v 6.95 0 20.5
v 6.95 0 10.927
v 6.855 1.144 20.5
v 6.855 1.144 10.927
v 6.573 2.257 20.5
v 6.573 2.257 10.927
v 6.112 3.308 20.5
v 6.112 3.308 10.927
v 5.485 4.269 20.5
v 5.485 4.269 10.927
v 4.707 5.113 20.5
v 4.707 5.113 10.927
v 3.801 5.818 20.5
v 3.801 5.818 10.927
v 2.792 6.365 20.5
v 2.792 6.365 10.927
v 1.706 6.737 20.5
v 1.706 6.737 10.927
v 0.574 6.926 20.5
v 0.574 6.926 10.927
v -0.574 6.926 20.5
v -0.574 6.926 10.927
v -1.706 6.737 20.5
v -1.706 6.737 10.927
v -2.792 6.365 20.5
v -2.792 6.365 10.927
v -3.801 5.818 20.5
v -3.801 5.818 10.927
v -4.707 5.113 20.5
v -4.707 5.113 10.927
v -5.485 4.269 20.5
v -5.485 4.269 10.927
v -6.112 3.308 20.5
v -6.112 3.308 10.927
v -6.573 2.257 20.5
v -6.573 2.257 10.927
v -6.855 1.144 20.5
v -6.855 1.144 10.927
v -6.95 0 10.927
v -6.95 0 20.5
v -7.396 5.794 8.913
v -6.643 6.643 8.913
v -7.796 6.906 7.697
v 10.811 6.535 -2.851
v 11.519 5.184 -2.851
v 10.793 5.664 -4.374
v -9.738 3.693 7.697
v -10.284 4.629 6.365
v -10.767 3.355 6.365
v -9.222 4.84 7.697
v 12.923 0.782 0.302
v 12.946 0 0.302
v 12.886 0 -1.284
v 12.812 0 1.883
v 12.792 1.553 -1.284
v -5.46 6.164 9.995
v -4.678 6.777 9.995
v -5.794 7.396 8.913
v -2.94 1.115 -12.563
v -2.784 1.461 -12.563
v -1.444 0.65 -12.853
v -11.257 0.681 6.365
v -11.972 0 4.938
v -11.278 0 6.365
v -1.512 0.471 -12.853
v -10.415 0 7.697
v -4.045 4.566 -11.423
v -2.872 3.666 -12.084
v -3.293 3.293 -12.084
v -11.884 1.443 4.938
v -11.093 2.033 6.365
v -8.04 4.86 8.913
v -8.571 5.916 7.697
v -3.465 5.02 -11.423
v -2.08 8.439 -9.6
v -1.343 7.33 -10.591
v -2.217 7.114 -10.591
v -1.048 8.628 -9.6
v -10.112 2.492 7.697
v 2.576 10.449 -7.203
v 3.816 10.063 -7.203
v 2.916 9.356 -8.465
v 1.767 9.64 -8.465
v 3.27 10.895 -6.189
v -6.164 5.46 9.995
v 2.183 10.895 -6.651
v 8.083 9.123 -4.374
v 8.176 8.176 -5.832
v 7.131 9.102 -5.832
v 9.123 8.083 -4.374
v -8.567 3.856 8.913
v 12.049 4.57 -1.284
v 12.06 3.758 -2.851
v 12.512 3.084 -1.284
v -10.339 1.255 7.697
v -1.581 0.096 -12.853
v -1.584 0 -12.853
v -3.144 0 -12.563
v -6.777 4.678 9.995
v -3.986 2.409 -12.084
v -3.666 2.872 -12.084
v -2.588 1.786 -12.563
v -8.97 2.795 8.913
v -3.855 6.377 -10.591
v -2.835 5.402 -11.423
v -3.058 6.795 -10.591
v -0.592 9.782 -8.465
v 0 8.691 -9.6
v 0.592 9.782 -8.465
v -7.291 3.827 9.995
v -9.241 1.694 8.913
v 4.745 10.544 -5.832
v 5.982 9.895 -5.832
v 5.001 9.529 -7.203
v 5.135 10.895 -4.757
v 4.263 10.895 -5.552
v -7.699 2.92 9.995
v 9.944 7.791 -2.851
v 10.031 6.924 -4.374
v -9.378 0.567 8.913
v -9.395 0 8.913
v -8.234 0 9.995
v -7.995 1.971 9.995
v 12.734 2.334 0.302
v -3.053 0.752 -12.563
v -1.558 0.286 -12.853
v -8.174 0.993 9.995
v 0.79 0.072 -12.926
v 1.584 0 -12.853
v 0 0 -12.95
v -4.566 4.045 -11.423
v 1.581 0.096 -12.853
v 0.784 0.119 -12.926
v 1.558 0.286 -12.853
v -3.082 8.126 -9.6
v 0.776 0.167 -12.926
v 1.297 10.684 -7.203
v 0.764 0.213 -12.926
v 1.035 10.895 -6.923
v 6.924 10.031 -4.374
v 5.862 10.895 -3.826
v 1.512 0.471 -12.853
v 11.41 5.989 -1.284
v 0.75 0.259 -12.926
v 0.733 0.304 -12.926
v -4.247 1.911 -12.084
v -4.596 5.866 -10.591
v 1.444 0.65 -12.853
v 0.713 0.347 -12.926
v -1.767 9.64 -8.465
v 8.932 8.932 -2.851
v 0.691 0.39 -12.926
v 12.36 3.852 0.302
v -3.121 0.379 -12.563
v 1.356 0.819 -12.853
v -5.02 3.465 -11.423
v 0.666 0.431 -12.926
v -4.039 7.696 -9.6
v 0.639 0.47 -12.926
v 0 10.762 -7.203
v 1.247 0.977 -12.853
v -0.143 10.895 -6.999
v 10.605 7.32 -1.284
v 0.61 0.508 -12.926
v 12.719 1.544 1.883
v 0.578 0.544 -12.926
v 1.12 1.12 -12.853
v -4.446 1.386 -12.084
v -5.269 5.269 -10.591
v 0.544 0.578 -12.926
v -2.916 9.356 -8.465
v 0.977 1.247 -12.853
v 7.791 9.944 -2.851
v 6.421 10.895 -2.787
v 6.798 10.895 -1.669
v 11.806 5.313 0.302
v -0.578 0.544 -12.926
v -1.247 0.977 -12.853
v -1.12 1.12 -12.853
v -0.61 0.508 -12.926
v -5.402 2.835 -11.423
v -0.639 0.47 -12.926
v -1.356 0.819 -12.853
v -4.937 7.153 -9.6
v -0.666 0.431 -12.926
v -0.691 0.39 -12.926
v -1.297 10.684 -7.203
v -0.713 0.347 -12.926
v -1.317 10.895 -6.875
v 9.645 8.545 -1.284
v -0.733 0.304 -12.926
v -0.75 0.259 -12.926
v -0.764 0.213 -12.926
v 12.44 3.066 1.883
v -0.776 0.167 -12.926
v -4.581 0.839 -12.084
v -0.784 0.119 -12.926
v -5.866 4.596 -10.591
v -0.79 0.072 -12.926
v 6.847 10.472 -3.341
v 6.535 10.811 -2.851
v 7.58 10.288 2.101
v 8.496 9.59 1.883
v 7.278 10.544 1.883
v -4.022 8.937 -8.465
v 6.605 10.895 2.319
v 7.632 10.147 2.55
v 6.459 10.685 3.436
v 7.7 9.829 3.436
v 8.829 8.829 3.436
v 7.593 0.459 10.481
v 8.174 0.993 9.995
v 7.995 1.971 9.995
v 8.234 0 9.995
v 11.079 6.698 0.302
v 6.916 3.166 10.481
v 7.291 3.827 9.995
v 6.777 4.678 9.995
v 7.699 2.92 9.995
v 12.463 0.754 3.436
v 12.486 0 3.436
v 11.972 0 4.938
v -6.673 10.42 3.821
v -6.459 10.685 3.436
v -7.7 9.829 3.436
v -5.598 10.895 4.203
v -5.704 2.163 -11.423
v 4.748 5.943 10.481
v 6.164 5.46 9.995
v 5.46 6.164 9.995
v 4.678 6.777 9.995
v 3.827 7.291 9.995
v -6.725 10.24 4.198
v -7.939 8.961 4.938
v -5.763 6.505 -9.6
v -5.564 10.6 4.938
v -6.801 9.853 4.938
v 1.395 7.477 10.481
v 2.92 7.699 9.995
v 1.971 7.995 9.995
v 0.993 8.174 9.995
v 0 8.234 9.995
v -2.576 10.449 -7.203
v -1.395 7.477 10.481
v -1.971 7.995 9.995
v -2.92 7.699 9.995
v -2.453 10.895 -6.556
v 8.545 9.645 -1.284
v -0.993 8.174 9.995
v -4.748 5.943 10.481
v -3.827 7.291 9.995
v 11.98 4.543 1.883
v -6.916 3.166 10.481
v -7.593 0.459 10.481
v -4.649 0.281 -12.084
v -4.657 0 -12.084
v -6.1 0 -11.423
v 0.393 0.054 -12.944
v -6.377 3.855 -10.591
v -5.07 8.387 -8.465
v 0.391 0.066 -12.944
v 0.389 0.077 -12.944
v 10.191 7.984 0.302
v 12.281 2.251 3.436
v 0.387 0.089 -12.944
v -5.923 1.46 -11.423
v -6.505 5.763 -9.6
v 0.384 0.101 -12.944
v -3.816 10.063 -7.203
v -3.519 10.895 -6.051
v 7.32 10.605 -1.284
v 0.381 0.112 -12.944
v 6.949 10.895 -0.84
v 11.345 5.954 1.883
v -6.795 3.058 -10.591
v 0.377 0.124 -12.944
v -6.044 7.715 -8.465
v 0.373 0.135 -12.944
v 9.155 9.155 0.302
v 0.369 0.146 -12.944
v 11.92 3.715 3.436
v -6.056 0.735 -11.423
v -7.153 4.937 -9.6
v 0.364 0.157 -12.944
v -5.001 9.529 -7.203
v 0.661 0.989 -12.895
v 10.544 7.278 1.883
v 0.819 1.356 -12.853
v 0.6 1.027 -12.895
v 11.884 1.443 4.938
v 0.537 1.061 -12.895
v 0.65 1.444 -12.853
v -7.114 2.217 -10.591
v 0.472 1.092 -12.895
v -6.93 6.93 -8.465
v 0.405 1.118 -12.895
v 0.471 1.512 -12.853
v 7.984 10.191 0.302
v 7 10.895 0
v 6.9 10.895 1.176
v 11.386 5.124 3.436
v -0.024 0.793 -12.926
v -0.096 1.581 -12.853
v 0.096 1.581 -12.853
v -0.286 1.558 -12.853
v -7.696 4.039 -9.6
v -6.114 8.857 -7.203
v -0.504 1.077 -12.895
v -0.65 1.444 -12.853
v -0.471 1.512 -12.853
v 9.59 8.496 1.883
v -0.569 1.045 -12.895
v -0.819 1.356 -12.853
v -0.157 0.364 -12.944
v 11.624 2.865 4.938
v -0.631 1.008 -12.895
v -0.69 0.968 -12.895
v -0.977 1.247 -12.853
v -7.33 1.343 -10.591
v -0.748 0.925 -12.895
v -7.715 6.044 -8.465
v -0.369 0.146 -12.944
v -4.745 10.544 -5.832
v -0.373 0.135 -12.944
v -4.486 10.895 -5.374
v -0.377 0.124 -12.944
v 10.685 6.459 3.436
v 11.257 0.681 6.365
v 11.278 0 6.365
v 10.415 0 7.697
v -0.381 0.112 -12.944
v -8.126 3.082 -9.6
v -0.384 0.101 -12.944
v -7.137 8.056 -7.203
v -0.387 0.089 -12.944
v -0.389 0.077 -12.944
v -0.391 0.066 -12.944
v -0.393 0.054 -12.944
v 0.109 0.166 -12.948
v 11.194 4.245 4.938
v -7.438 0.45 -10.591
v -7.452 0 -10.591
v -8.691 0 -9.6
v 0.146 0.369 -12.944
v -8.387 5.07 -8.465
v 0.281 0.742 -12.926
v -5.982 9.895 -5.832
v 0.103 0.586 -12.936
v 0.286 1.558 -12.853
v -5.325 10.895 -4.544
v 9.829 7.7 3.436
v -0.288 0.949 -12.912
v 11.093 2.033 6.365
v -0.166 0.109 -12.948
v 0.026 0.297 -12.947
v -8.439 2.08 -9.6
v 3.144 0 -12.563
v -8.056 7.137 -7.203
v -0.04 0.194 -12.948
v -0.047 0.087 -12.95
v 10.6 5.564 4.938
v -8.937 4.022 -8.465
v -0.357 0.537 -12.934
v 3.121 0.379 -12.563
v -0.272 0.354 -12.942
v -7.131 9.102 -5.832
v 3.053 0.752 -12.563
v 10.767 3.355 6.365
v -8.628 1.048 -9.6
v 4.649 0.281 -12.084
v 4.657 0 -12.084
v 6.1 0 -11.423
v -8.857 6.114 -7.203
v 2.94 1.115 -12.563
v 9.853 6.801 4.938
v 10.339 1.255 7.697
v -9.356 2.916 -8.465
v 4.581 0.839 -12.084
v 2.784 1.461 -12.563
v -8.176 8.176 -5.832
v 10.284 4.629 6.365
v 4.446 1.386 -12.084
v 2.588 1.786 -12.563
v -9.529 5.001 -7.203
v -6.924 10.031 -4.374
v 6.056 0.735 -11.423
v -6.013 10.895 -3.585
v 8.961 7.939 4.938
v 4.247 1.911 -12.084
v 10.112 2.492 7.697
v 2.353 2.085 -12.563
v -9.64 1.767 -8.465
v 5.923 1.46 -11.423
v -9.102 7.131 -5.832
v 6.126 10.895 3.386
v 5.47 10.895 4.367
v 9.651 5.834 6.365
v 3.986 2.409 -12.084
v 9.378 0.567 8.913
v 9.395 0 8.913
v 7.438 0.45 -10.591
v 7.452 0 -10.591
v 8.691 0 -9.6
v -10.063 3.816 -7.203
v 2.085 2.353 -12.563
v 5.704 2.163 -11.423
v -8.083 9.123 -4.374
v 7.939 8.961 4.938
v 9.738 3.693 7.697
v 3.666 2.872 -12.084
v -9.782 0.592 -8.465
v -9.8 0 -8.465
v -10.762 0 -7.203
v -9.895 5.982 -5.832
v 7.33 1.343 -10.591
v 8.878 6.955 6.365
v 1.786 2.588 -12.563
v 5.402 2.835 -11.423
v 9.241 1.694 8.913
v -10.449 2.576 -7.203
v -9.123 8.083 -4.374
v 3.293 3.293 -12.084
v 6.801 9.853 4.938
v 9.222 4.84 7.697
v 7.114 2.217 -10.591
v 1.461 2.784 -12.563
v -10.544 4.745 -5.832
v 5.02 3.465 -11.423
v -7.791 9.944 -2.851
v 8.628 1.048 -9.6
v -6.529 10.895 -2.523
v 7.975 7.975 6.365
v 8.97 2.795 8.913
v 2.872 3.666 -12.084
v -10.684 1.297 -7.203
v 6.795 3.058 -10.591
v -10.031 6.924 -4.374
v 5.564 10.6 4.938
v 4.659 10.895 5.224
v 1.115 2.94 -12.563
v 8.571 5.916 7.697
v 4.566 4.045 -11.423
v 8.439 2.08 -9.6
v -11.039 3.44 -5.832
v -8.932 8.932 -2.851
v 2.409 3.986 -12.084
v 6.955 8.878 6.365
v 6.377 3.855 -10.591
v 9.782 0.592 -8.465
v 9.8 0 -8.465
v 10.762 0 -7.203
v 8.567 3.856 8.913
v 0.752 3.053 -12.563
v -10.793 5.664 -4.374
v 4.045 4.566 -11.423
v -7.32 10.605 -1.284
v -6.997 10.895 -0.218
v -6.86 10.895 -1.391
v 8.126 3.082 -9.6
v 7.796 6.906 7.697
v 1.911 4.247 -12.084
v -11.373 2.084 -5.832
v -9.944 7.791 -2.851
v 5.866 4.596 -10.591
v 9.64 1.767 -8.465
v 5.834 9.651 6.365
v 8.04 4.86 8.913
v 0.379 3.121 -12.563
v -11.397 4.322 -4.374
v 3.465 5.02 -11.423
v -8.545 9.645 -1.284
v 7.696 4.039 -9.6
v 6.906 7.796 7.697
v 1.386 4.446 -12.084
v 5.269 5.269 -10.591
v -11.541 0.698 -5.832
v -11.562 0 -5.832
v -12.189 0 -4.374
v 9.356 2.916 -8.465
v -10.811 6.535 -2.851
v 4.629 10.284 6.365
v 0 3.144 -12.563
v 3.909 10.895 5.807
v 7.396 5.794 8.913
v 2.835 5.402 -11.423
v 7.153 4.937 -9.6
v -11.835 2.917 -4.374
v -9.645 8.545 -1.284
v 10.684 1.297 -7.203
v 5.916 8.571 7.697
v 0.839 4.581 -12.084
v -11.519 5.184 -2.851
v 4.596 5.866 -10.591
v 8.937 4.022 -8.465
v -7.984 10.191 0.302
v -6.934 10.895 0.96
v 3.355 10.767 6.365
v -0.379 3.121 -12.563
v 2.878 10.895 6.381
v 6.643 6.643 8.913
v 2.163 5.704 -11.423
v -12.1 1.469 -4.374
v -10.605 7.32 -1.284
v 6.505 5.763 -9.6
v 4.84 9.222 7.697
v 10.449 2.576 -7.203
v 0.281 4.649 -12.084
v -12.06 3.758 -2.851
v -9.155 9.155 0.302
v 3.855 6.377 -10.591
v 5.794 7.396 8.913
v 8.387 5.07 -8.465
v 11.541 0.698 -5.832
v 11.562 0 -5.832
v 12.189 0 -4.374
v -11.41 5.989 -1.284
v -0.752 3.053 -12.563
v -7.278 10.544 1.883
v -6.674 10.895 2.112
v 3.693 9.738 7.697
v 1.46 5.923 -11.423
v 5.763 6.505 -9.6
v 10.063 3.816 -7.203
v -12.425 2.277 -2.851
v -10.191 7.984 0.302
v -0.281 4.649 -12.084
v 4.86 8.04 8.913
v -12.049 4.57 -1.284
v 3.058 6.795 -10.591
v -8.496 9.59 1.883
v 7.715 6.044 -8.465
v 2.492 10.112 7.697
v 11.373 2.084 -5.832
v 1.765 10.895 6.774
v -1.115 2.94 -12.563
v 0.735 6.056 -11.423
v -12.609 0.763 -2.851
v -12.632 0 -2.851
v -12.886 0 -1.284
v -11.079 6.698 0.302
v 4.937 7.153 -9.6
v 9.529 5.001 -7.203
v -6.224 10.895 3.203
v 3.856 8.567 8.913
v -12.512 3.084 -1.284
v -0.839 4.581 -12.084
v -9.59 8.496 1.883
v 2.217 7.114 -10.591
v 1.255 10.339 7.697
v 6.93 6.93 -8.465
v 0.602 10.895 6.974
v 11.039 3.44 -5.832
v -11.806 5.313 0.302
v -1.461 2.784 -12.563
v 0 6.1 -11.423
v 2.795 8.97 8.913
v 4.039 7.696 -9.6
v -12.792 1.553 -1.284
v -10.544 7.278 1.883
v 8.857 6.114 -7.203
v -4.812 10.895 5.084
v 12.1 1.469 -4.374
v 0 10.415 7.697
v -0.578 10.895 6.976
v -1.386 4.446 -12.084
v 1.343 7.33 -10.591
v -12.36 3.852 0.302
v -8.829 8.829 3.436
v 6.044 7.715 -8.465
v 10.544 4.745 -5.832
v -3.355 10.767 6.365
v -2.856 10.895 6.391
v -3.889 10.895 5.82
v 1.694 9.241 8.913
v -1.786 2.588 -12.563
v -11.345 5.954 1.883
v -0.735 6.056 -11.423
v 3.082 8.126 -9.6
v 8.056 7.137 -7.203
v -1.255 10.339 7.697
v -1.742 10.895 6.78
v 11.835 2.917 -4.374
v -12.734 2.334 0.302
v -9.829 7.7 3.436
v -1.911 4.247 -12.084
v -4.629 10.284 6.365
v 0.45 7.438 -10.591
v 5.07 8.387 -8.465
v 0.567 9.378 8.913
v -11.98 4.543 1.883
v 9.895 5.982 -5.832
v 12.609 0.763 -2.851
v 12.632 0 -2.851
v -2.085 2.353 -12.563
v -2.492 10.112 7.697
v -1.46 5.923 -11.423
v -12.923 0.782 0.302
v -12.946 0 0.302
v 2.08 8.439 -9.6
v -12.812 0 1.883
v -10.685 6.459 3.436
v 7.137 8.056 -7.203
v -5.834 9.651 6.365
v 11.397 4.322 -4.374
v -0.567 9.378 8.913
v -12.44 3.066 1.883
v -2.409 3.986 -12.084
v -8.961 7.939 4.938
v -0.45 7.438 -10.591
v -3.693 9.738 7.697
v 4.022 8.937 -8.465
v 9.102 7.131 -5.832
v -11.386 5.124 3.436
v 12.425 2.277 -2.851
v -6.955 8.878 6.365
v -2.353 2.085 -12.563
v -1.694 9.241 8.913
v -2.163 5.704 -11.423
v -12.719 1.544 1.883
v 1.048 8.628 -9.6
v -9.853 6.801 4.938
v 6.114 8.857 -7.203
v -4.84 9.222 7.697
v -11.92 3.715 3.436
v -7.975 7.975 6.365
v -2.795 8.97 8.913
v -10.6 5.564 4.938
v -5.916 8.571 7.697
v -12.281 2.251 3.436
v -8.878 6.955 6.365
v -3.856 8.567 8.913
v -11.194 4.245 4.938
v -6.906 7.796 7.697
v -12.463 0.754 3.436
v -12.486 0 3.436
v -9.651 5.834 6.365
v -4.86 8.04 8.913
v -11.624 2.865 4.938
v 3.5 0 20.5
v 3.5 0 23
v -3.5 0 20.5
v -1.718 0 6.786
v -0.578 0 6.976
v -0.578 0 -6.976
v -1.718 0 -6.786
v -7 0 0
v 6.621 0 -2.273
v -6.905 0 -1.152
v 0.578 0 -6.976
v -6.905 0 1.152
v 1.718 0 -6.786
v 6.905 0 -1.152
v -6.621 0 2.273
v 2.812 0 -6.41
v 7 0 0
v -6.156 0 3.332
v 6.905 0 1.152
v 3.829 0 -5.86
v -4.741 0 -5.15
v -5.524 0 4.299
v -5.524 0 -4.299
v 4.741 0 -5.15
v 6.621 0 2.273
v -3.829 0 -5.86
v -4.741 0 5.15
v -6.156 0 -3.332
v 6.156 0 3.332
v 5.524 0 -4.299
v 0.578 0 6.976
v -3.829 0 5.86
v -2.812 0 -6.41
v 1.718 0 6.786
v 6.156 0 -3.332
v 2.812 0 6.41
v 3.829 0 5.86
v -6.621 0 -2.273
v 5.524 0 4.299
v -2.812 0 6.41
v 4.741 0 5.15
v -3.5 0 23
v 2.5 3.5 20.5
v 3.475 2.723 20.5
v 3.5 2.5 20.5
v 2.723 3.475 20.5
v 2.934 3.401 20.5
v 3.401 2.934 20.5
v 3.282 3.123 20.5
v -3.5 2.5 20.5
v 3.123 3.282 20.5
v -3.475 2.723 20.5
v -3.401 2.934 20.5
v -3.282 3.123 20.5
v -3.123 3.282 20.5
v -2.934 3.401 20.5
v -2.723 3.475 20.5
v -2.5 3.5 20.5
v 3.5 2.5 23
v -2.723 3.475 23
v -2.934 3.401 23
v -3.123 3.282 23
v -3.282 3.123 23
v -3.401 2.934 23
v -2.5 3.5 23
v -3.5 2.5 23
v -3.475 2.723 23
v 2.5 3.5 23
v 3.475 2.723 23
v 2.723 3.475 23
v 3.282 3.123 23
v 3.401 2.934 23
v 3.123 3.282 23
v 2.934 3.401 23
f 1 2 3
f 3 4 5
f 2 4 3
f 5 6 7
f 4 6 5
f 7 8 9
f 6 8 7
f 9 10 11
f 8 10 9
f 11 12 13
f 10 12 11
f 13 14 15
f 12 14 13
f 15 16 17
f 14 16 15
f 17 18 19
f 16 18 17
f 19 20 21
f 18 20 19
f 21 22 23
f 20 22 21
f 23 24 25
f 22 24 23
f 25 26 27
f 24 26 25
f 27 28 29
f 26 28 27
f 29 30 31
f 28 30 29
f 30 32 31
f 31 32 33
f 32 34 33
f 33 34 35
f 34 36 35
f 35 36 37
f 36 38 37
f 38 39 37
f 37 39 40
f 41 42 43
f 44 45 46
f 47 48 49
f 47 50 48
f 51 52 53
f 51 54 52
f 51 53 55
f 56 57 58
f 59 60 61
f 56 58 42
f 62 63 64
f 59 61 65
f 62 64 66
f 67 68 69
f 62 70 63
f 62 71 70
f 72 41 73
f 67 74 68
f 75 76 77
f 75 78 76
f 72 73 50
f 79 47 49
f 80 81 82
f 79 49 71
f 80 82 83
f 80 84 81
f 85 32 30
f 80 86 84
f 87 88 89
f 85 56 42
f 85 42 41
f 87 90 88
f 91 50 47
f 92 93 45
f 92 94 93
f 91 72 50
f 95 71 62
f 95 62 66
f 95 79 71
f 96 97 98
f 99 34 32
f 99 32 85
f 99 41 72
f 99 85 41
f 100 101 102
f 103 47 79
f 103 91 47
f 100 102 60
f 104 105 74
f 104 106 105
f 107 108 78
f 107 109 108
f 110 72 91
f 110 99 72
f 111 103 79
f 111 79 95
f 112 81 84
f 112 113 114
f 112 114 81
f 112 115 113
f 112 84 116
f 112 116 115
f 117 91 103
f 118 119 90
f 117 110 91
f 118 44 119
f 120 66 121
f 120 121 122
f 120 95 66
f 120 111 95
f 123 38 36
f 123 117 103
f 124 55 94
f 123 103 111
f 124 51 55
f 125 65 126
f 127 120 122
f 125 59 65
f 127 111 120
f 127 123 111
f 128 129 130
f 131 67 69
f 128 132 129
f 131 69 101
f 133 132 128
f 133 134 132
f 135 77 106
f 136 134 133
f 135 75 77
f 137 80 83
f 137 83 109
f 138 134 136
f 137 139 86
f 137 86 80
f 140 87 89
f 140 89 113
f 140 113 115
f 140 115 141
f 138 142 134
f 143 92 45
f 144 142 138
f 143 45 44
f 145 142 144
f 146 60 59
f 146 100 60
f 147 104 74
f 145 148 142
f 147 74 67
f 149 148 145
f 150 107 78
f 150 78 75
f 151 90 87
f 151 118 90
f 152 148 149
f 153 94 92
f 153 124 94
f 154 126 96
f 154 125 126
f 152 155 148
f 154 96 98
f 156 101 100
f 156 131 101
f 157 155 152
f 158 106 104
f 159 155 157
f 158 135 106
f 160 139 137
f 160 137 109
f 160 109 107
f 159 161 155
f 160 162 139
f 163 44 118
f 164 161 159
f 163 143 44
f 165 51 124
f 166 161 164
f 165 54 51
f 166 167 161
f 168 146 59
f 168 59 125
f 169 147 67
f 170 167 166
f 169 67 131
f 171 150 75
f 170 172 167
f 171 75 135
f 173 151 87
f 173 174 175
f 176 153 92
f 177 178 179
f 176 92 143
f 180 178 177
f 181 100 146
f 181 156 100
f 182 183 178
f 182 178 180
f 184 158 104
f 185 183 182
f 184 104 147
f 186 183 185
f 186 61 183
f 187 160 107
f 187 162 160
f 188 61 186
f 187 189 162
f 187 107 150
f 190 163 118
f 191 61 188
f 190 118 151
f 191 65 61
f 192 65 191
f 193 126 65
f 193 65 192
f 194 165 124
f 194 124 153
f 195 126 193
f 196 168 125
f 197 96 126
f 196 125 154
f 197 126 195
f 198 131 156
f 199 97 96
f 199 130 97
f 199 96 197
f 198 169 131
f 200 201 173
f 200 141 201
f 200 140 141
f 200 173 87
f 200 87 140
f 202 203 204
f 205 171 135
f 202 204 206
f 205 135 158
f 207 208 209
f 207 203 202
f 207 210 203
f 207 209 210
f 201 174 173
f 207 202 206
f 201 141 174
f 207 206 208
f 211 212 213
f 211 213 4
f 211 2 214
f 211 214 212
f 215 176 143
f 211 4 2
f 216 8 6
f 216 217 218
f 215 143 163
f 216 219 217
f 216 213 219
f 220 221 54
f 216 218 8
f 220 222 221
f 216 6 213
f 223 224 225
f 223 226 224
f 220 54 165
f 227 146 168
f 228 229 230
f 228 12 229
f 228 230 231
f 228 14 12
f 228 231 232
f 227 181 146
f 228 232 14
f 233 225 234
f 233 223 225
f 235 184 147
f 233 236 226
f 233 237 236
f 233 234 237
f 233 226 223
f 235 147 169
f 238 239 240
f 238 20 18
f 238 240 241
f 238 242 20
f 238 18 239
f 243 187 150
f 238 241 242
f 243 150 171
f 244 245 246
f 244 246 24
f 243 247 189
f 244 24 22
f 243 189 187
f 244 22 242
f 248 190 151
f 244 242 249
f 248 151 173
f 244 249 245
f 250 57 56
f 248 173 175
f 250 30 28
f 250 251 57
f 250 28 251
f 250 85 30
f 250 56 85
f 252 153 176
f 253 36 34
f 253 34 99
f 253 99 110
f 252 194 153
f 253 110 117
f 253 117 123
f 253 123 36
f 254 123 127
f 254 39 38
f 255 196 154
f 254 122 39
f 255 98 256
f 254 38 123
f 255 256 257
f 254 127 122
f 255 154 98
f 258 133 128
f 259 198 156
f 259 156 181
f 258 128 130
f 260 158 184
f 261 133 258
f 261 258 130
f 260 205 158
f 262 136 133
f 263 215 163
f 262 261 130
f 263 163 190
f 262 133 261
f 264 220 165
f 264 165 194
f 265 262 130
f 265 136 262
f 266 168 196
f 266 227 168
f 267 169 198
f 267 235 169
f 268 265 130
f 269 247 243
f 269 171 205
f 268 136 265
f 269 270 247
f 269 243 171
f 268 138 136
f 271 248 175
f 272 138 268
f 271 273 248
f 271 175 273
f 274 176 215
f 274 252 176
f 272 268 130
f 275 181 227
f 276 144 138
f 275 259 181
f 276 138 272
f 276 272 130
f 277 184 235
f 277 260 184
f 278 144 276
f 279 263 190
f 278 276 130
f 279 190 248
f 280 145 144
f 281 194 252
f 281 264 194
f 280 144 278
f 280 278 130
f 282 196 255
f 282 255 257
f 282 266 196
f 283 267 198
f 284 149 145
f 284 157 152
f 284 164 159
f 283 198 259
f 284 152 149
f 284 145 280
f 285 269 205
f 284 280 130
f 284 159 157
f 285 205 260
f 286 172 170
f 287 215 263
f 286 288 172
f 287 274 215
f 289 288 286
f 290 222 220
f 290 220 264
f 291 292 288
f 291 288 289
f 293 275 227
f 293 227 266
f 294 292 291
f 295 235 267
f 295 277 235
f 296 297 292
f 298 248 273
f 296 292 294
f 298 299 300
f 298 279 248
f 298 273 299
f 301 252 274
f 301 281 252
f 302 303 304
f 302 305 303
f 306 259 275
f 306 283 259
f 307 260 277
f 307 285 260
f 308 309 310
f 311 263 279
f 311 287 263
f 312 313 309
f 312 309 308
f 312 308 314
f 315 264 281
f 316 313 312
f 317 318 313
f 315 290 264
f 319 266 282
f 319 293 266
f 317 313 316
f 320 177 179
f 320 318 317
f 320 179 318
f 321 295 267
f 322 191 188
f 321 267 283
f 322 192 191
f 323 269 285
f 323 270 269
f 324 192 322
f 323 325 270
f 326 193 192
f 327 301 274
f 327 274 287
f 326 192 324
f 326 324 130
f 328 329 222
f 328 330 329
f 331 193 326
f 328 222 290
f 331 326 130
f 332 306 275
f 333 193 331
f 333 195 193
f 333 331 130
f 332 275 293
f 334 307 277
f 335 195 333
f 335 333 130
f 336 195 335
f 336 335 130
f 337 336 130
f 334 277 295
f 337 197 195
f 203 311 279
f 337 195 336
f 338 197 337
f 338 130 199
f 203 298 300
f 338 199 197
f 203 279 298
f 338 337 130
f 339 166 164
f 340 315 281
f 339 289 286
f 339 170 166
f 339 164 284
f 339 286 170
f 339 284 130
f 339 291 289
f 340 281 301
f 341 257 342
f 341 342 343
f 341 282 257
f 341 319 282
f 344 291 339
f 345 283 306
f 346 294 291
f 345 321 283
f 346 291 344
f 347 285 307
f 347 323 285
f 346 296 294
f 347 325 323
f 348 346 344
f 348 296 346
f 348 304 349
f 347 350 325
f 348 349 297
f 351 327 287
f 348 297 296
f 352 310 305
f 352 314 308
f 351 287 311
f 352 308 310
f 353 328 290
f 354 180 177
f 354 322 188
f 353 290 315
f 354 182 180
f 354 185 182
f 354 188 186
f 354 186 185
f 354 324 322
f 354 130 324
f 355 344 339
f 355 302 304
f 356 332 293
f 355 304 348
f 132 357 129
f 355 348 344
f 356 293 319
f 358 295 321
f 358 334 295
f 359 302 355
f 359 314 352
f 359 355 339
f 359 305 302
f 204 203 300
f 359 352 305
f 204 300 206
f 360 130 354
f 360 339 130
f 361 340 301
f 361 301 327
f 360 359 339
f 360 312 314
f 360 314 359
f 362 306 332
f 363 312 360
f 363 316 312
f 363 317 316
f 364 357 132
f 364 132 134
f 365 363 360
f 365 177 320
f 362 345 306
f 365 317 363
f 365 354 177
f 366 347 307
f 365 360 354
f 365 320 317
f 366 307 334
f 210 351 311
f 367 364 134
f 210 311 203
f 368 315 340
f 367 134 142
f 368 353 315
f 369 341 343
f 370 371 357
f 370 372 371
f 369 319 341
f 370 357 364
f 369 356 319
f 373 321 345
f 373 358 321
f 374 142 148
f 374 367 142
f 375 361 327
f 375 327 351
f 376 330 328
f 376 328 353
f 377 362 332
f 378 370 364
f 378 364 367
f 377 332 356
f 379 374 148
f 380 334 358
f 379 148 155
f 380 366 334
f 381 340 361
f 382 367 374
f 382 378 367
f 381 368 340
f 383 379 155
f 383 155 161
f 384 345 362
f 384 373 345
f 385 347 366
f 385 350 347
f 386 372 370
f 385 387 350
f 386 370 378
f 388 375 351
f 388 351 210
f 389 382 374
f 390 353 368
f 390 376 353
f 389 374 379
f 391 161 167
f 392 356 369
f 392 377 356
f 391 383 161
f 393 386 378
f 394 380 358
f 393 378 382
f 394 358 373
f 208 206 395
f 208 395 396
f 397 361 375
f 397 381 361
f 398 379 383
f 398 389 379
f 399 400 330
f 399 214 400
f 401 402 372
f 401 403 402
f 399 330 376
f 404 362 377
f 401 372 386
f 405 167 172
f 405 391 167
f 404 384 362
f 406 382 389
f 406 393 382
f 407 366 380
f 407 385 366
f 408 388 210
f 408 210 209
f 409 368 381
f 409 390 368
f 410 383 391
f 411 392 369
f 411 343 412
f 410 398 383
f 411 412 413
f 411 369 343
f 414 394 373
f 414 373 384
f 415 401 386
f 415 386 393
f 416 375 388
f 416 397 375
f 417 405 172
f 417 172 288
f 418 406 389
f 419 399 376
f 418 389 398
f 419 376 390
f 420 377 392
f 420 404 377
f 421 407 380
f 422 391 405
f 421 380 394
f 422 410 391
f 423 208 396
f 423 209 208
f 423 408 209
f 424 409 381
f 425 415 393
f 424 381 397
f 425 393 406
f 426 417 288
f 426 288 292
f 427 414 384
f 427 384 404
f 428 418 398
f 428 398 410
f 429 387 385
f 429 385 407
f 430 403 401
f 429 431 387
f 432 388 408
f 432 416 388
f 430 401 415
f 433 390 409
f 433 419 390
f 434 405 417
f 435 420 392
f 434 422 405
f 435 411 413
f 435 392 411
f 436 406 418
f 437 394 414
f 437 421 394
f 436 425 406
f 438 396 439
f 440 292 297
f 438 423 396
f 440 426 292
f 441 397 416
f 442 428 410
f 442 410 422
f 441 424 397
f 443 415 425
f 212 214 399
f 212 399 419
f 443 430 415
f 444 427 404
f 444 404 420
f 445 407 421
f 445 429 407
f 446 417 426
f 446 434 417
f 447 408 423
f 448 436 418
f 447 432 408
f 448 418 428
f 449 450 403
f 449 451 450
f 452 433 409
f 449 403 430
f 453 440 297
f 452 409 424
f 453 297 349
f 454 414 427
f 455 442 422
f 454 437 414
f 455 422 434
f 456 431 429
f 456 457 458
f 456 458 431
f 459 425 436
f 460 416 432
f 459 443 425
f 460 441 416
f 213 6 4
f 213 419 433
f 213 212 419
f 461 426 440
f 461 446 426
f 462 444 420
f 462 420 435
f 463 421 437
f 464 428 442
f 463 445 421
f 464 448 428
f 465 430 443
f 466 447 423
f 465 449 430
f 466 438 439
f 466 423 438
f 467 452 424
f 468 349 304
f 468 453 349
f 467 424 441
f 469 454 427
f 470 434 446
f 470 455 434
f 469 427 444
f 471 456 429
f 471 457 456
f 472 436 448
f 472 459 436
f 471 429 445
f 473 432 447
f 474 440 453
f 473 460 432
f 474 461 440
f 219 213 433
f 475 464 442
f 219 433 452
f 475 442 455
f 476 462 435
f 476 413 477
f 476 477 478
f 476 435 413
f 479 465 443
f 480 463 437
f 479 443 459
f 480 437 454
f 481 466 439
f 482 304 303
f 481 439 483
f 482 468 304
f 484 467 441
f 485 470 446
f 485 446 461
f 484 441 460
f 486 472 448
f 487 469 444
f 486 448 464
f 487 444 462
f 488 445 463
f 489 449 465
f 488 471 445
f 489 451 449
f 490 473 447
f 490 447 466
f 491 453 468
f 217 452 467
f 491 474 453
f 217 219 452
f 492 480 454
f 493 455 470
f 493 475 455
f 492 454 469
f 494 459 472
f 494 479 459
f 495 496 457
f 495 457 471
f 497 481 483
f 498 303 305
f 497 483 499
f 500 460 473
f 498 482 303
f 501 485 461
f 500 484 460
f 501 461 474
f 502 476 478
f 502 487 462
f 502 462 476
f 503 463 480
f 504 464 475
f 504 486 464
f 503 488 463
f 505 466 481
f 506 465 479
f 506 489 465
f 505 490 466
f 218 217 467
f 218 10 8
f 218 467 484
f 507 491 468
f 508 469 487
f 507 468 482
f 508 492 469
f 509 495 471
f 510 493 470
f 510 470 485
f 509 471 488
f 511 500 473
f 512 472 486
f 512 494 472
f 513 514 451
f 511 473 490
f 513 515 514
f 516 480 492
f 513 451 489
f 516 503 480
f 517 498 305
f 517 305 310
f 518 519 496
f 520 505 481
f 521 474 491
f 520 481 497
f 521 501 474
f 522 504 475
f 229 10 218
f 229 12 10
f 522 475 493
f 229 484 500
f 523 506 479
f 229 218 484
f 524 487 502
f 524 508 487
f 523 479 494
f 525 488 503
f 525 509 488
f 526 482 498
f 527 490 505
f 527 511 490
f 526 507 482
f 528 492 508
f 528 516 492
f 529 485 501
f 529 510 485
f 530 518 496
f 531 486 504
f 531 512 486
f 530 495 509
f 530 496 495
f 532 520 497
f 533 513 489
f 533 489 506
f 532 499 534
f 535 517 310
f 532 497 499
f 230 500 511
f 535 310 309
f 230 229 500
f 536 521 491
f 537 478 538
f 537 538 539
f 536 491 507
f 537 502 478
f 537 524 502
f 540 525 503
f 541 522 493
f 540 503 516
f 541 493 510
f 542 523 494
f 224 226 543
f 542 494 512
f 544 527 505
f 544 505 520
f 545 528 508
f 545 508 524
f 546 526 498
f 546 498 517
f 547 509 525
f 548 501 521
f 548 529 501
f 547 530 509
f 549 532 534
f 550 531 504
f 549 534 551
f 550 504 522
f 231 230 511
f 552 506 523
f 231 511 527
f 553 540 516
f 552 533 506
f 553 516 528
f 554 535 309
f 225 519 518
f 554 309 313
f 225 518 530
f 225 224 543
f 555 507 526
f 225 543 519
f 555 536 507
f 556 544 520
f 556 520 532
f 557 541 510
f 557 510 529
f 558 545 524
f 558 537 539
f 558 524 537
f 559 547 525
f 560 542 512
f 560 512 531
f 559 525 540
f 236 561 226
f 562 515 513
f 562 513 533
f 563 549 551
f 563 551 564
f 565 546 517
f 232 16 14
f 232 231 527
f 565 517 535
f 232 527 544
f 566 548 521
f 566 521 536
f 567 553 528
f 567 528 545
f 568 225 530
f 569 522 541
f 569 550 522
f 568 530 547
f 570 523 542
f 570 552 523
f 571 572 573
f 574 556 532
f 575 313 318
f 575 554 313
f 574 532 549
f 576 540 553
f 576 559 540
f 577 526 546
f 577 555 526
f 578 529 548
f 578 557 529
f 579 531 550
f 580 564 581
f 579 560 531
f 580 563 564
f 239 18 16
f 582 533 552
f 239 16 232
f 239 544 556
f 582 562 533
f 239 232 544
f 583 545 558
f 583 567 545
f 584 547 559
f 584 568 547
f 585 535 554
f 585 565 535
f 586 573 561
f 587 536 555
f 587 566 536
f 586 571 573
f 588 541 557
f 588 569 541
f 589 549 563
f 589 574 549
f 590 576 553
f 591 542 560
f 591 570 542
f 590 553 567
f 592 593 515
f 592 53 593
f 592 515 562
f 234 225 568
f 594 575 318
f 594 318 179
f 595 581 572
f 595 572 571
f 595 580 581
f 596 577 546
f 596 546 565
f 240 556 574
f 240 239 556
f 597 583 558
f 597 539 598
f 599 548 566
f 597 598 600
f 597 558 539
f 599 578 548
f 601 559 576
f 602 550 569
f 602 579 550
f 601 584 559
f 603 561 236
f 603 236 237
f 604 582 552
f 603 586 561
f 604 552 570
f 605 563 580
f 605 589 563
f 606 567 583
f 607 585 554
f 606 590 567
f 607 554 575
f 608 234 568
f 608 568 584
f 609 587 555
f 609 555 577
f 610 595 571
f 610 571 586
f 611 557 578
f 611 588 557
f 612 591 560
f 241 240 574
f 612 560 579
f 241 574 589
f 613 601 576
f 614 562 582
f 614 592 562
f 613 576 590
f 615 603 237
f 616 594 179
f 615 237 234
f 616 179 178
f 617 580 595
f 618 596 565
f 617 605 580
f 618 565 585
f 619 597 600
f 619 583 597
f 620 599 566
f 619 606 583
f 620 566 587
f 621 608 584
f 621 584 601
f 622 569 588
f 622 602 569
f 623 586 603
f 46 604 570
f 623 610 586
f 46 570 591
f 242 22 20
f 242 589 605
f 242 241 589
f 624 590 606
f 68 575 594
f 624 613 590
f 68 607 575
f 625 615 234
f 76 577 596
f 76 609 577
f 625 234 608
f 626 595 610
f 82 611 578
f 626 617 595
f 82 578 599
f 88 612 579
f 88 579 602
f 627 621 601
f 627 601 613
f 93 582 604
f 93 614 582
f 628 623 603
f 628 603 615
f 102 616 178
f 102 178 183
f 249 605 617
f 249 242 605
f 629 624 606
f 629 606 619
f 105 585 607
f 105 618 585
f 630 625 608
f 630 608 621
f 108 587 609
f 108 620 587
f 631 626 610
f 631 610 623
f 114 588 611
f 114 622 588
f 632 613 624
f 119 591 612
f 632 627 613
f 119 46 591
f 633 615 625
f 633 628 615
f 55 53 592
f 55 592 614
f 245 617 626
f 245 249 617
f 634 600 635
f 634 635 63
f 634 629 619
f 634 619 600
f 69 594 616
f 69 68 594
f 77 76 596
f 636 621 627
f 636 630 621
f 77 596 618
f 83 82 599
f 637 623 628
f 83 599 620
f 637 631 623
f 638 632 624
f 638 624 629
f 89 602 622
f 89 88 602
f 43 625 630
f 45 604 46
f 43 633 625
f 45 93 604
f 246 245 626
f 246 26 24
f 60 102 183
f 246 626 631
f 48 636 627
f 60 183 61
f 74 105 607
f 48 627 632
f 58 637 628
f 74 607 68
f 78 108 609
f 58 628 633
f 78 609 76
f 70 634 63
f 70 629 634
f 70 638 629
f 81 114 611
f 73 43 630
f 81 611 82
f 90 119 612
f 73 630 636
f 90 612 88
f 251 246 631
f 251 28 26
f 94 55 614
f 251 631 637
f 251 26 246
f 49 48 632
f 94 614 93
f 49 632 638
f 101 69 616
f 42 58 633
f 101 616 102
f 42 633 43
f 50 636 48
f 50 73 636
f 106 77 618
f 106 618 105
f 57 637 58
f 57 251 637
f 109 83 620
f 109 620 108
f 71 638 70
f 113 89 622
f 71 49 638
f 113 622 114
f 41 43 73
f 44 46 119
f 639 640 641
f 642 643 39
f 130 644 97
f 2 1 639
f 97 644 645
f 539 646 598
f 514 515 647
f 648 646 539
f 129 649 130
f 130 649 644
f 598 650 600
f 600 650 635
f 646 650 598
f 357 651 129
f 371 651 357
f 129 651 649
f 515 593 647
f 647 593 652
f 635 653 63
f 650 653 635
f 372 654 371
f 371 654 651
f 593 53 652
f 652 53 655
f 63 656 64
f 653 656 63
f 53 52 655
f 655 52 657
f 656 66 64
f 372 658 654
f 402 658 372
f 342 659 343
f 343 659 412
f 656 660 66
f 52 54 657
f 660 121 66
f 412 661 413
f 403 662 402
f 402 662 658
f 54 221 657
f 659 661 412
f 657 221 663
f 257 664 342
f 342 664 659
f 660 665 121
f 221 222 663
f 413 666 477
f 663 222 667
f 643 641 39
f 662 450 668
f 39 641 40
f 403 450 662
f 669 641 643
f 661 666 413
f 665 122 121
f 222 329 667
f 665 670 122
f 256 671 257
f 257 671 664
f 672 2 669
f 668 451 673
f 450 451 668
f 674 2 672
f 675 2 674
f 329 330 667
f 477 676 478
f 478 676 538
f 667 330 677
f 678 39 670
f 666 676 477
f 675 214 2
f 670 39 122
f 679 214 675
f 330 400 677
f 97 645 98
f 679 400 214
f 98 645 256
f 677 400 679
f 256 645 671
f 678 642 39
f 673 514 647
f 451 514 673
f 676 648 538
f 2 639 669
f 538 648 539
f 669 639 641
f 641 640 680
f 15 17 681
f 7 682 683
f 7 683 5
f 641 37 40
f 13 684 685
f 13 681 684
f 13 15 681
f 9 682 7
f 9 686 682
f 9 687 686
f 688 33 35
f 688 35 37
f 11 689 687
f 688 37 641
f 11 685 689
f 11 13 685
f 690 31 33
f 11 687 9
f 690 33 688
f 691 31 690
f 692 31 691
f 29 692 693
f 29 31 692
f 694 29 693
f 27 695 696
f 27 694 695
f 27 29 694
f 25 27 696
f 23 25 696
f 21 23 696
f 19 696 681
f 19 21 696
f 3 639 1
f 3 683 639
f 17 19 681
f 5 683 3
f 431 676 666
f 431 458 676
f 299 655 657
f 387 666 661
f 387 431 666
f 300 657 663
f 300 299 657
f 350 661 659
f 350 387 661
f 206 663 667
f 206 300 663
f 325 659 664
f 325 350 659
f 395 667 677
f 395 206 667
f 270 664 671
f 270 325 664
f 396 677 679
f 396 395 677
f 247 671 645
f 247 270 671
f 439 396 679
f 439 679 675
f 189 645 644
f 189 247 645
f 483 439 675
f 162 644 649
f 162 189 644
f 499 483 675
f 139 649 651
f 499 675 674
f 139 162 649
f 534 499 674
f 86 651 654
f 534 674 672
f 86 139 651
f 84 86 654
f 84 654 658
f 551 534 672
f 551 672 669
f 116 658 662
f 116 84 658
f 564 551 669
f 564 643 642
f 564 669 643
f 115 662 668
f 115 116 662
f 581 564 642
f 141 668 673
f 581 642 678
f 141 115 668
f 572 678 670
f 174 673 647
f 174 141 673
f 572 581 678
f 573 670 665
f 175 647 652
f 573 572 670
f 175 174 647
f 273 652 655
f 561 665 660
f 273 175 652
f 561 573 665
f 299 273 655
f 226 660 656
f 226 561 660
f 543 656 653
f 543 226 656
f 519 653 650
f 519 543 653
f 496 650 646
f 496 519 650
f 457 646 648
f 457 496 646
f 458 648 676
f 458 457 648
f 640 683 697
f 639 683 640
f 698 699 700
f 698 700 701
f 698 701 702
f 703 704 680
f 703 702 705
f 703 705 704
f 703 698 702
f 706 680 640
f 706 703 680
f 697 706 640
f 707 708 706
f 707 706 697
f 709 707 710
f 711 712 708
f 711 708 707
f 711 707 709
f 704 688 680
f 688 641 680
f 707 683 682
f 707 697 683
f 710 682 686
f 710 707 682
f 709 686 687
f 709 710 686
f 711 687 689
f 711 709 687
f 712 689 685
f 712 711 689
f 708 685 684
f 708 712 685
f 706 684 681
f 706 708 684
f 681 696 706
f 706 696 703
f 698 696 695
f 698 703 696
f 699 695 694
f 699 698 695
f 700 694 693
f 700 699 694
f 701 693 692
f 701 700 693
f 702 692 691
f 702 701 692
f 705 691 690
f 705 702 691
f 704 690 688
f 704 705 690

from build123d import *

# Parameters (mm, degrees)
SKETCH004_W      = 30
SKETCH004_H      = 50
EXTRUDE003_DEPTH = 20
SKETCH002_R      = 6.95
EXTRUDE001_DEPTH = 12.5
SKETCH001_R      = 7
EXTRUDE_DEPTH    = 15
SKETCH003_W      = 7
SKETCH003_H      = 7
EXTRUDE002_DEPTH = 2.5
FILLET_R         = 1


with BuildPart() as extrude003:
    # Sketch004 → Extrude003 (new body)
    with BuildSketch(Plane.XZ):
        Rectangle(SKETCH004_W, SKETCH004_H)
    extrude(amount=EXTRUDE003_DEPTH)


with BuildPart() as extrude001:
    # Sketch002 → Extrude001 (new body)
    with BuildSketch(Plane.XY.offset(8)):
        Circle(SKETCH002_R)
    extrude(amount=EXTRUDE001_DEPTH)


with BuildPart() as extrude_body:
    # Sketch001 → Extrude (new body, symmetric)
    with BuildSketch(Plane.XZ):
        Circle(SKETCH001_R)
    extrude(amount=EXTRUDE_DEPTH, both=True)


with BuildPart() as cut:
    # Sketch → Revolve (revolve)
    with BuildSketch(Plane.XZ):
        with BuildLine():
            ThreePointArc((0, -12.95), (12.95, 0), (0, 12.95))
            Line((0, 12.95), (0, -12.95))
        make_face()
    revolve(axis=Axis((0, 0, 0), (0, 0, 1)))

    # Cut: cut Extrude body
    add(extrude_body.part, mode=Mode.SUBTRACT)


with BuildPart() as cut001:
    # Sketch003 (on Face3 of Extrude001) → Extrude002 (new body)
    with BuildSketch(Plane.XY.offset(20.5)):
        Rectangle(SKETCH003_W, SKETCH003_H)
    extrude(amount=EXTRUDE002_DEPTH)

    # Fillet
    fillet_edges = [cut001.edges().sort_by_distance(p)[0] for p in [
        (-3.5, -3.5, 21.75),
        (3.5, -3.5, 21.75),
        (3.5, 3.5, 21.75),
        (-3.5, 3.5, 21.75),
    ]]
    fillet(fillet_edges, radius=FILLET_R)

    # Fusion: union Extrude001, Cut
    add(extrude001.part)
    add(cut.part)

    # Cut001: cut Extrude003
    add(extrude003.part, mode=Mode.SUBTRACT)


solid = cut001.part
